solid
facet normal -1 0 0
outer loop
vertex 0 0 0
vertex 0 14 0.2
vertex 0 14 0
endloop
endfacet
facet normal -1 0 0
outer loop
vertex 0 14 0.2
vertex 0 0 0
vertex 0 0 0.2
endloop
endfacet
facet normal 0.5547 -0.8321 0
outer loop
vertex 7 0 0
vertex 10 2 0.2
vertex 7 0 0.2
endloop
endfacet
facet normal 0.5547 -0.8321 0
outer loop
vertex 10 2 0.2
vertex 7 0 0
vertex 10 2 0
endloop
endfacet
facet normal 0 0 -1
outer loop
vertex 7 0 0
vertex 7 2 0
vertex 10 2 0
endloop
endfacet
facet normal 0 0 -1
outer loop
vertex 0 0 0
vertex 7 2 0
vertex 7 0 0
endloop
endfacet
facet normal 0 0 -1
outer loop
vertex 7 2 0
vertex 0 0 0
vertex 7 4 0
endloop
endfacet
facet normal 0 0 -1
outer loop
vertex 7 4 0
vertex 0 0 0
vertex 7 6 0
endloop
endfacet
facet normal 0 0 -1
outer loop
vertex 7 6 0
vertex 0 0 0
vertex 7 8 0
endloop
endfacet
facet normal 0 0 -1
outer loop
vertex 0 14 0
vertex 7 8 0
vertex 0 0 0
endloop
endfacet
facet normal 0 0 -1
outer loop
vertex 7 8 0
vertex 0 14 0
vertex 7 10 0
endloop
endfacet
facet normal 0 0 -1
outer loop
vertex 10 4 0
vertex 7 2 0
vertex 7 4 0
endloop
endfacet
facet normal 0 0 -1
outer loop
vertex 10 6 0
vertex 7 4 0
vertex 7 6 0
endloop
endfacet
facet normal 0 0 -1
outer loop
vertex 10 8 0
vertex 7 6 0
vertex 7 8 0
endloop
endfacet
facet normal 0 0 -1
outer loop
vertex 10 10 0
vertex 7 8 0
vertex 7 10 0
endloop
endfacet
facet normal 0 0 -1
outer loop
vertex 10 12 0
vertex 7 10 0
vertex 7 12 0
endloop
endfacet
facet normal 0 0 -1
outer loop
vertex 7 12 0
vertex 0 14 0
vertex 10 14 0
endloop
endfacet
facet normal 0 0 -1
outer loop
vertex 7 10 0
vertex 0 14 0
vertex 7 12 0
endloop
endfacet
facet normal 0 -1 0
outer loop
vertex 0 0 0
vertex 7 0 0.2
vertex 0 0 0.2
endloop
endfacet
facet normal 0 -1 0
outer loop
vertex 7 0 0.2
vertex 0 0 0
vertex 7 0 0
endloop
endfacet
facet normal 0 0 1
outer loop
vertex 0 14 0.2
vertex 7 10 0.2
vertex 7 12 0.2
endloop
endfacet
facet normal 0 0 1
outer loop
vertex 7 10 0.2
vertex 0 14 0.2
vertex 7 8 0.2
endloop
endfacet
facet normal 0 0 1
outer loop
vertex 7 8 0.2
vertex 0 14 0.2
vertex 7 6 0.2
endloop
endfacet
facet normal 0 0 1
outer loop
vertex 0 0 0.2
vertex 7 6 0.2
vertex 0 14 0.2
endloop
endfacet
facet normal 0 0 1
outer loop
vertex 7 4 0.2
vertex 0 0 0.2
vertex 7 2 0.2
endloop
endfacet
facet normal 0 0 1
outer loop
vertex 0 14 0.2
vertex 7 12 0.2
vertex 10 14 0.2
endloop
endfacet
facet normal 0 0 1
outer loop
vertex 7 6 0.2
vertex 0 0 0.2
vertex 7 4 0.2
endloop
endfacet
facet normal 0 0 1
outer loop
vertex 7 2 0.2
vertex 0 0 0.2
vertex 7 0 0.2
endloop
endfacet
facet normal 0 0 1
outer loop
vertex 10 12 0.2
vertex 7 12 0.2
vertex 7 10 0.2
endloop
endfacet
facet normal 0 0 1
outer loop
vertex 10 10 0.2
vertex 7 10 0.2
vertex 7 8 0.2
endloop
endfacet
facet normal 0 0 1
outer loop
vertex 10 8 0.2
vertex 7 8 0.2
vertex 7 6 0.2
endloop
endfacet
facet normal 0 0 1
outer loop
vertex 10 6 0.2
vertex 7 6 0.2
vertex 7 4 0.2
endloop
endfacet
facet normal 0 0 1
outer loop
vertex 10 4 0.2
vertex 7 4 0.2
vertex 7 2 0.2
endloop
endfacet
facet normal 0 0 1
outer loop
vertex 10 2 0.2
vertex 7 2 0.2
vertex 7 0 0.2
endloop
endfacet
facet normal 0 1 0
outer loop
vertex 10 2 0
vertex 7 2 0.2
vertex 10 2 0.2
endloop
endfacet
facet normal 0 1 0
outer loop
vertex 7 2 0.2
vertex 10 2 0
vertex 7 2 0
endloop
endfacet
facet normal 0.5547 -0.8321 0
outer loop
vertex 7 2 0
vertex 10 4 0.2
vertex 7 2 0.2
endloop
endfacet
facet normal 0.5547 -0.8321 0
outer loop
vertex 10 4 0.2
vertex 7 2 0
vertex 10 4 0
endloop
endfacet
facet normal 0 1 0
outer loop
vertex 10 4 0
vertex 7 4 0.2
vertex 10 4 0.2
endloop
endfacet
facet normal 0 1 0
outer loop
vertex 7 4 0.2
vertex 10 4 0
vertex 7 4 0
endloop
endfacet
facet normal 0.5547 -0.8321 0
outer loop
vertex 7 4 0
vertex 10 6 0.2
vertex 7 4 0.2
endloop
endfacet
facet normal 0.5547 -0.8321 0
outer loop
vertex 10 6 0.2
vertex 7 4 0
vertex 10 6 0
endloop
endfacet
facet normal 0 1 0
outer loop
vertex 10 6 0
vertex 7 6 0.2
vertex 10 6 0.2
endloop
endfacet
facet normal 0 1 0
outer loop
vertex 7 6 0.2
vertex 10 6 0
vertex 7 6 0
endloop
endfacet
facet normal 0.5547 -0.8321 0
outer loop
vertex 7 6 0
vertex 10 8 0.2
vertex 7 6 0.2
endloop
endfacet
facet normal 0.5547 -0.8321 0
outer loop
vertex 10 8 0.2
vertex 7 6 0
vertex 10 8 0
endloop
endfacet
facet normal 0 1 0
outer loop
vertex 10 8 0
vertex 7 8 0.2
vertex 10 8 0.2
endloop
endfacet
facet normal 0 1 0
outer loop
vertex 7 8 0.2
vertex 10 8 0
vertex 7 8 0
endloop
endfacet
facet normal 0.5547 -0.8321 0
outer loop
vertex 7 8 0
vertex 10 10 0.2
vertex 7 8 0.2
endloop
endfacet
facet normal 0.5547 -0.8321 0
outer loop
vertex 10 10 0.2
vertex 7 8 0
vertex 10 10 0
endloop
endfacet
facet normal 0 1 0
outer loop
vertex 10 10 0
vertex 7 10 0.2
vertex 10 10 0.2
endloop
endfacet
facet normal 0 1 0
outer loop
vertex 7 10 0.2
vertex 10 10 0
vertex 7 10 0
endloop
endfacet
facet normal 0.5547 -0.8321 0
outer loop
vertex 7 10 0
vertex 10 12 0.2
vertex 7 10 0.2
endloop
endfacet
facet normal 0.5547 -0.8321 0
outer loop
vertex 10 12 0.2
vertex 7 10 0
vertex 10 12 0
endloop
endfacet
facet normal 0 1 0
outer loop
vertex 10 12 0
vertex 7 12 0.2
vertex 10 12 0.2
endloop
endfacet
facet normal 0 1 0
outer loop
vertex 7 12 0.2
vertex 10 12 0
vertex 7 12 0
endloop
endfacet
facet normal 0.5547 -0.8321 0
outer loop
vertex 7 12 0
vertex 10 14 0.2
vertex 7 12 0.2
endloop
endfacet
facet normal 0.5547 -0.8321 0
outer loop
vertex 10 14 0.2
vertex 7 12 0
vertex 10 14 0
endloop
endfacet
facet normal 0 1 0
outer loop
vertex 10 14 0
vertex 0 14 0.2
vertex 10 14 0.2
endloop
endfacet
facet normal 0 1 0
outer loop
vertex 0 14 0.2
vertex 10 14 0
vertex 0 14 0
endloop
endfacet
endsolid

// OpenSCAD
/**
 * Martin Egli
 * 2024-06-06
 * template for z axis fine tuning
 */

module ztuningtemplate_part(xsize = 10, ysize = 2, zsize = 0.2) {
    linear_extrude(zsize)
    polygon([[0, 0], [xsize-1.5*ysize, 0], [xsize, ysize], [0, ysize]]);
}
    
module ztuningtemplate(thickness = 0.2) {
    for(n = [0:1:6]) {
        translate([0, n*2, 0])
        ztuningtemplate_part(10, 2, thickness);
    }
}

//projection()
ztuningtemplate();
